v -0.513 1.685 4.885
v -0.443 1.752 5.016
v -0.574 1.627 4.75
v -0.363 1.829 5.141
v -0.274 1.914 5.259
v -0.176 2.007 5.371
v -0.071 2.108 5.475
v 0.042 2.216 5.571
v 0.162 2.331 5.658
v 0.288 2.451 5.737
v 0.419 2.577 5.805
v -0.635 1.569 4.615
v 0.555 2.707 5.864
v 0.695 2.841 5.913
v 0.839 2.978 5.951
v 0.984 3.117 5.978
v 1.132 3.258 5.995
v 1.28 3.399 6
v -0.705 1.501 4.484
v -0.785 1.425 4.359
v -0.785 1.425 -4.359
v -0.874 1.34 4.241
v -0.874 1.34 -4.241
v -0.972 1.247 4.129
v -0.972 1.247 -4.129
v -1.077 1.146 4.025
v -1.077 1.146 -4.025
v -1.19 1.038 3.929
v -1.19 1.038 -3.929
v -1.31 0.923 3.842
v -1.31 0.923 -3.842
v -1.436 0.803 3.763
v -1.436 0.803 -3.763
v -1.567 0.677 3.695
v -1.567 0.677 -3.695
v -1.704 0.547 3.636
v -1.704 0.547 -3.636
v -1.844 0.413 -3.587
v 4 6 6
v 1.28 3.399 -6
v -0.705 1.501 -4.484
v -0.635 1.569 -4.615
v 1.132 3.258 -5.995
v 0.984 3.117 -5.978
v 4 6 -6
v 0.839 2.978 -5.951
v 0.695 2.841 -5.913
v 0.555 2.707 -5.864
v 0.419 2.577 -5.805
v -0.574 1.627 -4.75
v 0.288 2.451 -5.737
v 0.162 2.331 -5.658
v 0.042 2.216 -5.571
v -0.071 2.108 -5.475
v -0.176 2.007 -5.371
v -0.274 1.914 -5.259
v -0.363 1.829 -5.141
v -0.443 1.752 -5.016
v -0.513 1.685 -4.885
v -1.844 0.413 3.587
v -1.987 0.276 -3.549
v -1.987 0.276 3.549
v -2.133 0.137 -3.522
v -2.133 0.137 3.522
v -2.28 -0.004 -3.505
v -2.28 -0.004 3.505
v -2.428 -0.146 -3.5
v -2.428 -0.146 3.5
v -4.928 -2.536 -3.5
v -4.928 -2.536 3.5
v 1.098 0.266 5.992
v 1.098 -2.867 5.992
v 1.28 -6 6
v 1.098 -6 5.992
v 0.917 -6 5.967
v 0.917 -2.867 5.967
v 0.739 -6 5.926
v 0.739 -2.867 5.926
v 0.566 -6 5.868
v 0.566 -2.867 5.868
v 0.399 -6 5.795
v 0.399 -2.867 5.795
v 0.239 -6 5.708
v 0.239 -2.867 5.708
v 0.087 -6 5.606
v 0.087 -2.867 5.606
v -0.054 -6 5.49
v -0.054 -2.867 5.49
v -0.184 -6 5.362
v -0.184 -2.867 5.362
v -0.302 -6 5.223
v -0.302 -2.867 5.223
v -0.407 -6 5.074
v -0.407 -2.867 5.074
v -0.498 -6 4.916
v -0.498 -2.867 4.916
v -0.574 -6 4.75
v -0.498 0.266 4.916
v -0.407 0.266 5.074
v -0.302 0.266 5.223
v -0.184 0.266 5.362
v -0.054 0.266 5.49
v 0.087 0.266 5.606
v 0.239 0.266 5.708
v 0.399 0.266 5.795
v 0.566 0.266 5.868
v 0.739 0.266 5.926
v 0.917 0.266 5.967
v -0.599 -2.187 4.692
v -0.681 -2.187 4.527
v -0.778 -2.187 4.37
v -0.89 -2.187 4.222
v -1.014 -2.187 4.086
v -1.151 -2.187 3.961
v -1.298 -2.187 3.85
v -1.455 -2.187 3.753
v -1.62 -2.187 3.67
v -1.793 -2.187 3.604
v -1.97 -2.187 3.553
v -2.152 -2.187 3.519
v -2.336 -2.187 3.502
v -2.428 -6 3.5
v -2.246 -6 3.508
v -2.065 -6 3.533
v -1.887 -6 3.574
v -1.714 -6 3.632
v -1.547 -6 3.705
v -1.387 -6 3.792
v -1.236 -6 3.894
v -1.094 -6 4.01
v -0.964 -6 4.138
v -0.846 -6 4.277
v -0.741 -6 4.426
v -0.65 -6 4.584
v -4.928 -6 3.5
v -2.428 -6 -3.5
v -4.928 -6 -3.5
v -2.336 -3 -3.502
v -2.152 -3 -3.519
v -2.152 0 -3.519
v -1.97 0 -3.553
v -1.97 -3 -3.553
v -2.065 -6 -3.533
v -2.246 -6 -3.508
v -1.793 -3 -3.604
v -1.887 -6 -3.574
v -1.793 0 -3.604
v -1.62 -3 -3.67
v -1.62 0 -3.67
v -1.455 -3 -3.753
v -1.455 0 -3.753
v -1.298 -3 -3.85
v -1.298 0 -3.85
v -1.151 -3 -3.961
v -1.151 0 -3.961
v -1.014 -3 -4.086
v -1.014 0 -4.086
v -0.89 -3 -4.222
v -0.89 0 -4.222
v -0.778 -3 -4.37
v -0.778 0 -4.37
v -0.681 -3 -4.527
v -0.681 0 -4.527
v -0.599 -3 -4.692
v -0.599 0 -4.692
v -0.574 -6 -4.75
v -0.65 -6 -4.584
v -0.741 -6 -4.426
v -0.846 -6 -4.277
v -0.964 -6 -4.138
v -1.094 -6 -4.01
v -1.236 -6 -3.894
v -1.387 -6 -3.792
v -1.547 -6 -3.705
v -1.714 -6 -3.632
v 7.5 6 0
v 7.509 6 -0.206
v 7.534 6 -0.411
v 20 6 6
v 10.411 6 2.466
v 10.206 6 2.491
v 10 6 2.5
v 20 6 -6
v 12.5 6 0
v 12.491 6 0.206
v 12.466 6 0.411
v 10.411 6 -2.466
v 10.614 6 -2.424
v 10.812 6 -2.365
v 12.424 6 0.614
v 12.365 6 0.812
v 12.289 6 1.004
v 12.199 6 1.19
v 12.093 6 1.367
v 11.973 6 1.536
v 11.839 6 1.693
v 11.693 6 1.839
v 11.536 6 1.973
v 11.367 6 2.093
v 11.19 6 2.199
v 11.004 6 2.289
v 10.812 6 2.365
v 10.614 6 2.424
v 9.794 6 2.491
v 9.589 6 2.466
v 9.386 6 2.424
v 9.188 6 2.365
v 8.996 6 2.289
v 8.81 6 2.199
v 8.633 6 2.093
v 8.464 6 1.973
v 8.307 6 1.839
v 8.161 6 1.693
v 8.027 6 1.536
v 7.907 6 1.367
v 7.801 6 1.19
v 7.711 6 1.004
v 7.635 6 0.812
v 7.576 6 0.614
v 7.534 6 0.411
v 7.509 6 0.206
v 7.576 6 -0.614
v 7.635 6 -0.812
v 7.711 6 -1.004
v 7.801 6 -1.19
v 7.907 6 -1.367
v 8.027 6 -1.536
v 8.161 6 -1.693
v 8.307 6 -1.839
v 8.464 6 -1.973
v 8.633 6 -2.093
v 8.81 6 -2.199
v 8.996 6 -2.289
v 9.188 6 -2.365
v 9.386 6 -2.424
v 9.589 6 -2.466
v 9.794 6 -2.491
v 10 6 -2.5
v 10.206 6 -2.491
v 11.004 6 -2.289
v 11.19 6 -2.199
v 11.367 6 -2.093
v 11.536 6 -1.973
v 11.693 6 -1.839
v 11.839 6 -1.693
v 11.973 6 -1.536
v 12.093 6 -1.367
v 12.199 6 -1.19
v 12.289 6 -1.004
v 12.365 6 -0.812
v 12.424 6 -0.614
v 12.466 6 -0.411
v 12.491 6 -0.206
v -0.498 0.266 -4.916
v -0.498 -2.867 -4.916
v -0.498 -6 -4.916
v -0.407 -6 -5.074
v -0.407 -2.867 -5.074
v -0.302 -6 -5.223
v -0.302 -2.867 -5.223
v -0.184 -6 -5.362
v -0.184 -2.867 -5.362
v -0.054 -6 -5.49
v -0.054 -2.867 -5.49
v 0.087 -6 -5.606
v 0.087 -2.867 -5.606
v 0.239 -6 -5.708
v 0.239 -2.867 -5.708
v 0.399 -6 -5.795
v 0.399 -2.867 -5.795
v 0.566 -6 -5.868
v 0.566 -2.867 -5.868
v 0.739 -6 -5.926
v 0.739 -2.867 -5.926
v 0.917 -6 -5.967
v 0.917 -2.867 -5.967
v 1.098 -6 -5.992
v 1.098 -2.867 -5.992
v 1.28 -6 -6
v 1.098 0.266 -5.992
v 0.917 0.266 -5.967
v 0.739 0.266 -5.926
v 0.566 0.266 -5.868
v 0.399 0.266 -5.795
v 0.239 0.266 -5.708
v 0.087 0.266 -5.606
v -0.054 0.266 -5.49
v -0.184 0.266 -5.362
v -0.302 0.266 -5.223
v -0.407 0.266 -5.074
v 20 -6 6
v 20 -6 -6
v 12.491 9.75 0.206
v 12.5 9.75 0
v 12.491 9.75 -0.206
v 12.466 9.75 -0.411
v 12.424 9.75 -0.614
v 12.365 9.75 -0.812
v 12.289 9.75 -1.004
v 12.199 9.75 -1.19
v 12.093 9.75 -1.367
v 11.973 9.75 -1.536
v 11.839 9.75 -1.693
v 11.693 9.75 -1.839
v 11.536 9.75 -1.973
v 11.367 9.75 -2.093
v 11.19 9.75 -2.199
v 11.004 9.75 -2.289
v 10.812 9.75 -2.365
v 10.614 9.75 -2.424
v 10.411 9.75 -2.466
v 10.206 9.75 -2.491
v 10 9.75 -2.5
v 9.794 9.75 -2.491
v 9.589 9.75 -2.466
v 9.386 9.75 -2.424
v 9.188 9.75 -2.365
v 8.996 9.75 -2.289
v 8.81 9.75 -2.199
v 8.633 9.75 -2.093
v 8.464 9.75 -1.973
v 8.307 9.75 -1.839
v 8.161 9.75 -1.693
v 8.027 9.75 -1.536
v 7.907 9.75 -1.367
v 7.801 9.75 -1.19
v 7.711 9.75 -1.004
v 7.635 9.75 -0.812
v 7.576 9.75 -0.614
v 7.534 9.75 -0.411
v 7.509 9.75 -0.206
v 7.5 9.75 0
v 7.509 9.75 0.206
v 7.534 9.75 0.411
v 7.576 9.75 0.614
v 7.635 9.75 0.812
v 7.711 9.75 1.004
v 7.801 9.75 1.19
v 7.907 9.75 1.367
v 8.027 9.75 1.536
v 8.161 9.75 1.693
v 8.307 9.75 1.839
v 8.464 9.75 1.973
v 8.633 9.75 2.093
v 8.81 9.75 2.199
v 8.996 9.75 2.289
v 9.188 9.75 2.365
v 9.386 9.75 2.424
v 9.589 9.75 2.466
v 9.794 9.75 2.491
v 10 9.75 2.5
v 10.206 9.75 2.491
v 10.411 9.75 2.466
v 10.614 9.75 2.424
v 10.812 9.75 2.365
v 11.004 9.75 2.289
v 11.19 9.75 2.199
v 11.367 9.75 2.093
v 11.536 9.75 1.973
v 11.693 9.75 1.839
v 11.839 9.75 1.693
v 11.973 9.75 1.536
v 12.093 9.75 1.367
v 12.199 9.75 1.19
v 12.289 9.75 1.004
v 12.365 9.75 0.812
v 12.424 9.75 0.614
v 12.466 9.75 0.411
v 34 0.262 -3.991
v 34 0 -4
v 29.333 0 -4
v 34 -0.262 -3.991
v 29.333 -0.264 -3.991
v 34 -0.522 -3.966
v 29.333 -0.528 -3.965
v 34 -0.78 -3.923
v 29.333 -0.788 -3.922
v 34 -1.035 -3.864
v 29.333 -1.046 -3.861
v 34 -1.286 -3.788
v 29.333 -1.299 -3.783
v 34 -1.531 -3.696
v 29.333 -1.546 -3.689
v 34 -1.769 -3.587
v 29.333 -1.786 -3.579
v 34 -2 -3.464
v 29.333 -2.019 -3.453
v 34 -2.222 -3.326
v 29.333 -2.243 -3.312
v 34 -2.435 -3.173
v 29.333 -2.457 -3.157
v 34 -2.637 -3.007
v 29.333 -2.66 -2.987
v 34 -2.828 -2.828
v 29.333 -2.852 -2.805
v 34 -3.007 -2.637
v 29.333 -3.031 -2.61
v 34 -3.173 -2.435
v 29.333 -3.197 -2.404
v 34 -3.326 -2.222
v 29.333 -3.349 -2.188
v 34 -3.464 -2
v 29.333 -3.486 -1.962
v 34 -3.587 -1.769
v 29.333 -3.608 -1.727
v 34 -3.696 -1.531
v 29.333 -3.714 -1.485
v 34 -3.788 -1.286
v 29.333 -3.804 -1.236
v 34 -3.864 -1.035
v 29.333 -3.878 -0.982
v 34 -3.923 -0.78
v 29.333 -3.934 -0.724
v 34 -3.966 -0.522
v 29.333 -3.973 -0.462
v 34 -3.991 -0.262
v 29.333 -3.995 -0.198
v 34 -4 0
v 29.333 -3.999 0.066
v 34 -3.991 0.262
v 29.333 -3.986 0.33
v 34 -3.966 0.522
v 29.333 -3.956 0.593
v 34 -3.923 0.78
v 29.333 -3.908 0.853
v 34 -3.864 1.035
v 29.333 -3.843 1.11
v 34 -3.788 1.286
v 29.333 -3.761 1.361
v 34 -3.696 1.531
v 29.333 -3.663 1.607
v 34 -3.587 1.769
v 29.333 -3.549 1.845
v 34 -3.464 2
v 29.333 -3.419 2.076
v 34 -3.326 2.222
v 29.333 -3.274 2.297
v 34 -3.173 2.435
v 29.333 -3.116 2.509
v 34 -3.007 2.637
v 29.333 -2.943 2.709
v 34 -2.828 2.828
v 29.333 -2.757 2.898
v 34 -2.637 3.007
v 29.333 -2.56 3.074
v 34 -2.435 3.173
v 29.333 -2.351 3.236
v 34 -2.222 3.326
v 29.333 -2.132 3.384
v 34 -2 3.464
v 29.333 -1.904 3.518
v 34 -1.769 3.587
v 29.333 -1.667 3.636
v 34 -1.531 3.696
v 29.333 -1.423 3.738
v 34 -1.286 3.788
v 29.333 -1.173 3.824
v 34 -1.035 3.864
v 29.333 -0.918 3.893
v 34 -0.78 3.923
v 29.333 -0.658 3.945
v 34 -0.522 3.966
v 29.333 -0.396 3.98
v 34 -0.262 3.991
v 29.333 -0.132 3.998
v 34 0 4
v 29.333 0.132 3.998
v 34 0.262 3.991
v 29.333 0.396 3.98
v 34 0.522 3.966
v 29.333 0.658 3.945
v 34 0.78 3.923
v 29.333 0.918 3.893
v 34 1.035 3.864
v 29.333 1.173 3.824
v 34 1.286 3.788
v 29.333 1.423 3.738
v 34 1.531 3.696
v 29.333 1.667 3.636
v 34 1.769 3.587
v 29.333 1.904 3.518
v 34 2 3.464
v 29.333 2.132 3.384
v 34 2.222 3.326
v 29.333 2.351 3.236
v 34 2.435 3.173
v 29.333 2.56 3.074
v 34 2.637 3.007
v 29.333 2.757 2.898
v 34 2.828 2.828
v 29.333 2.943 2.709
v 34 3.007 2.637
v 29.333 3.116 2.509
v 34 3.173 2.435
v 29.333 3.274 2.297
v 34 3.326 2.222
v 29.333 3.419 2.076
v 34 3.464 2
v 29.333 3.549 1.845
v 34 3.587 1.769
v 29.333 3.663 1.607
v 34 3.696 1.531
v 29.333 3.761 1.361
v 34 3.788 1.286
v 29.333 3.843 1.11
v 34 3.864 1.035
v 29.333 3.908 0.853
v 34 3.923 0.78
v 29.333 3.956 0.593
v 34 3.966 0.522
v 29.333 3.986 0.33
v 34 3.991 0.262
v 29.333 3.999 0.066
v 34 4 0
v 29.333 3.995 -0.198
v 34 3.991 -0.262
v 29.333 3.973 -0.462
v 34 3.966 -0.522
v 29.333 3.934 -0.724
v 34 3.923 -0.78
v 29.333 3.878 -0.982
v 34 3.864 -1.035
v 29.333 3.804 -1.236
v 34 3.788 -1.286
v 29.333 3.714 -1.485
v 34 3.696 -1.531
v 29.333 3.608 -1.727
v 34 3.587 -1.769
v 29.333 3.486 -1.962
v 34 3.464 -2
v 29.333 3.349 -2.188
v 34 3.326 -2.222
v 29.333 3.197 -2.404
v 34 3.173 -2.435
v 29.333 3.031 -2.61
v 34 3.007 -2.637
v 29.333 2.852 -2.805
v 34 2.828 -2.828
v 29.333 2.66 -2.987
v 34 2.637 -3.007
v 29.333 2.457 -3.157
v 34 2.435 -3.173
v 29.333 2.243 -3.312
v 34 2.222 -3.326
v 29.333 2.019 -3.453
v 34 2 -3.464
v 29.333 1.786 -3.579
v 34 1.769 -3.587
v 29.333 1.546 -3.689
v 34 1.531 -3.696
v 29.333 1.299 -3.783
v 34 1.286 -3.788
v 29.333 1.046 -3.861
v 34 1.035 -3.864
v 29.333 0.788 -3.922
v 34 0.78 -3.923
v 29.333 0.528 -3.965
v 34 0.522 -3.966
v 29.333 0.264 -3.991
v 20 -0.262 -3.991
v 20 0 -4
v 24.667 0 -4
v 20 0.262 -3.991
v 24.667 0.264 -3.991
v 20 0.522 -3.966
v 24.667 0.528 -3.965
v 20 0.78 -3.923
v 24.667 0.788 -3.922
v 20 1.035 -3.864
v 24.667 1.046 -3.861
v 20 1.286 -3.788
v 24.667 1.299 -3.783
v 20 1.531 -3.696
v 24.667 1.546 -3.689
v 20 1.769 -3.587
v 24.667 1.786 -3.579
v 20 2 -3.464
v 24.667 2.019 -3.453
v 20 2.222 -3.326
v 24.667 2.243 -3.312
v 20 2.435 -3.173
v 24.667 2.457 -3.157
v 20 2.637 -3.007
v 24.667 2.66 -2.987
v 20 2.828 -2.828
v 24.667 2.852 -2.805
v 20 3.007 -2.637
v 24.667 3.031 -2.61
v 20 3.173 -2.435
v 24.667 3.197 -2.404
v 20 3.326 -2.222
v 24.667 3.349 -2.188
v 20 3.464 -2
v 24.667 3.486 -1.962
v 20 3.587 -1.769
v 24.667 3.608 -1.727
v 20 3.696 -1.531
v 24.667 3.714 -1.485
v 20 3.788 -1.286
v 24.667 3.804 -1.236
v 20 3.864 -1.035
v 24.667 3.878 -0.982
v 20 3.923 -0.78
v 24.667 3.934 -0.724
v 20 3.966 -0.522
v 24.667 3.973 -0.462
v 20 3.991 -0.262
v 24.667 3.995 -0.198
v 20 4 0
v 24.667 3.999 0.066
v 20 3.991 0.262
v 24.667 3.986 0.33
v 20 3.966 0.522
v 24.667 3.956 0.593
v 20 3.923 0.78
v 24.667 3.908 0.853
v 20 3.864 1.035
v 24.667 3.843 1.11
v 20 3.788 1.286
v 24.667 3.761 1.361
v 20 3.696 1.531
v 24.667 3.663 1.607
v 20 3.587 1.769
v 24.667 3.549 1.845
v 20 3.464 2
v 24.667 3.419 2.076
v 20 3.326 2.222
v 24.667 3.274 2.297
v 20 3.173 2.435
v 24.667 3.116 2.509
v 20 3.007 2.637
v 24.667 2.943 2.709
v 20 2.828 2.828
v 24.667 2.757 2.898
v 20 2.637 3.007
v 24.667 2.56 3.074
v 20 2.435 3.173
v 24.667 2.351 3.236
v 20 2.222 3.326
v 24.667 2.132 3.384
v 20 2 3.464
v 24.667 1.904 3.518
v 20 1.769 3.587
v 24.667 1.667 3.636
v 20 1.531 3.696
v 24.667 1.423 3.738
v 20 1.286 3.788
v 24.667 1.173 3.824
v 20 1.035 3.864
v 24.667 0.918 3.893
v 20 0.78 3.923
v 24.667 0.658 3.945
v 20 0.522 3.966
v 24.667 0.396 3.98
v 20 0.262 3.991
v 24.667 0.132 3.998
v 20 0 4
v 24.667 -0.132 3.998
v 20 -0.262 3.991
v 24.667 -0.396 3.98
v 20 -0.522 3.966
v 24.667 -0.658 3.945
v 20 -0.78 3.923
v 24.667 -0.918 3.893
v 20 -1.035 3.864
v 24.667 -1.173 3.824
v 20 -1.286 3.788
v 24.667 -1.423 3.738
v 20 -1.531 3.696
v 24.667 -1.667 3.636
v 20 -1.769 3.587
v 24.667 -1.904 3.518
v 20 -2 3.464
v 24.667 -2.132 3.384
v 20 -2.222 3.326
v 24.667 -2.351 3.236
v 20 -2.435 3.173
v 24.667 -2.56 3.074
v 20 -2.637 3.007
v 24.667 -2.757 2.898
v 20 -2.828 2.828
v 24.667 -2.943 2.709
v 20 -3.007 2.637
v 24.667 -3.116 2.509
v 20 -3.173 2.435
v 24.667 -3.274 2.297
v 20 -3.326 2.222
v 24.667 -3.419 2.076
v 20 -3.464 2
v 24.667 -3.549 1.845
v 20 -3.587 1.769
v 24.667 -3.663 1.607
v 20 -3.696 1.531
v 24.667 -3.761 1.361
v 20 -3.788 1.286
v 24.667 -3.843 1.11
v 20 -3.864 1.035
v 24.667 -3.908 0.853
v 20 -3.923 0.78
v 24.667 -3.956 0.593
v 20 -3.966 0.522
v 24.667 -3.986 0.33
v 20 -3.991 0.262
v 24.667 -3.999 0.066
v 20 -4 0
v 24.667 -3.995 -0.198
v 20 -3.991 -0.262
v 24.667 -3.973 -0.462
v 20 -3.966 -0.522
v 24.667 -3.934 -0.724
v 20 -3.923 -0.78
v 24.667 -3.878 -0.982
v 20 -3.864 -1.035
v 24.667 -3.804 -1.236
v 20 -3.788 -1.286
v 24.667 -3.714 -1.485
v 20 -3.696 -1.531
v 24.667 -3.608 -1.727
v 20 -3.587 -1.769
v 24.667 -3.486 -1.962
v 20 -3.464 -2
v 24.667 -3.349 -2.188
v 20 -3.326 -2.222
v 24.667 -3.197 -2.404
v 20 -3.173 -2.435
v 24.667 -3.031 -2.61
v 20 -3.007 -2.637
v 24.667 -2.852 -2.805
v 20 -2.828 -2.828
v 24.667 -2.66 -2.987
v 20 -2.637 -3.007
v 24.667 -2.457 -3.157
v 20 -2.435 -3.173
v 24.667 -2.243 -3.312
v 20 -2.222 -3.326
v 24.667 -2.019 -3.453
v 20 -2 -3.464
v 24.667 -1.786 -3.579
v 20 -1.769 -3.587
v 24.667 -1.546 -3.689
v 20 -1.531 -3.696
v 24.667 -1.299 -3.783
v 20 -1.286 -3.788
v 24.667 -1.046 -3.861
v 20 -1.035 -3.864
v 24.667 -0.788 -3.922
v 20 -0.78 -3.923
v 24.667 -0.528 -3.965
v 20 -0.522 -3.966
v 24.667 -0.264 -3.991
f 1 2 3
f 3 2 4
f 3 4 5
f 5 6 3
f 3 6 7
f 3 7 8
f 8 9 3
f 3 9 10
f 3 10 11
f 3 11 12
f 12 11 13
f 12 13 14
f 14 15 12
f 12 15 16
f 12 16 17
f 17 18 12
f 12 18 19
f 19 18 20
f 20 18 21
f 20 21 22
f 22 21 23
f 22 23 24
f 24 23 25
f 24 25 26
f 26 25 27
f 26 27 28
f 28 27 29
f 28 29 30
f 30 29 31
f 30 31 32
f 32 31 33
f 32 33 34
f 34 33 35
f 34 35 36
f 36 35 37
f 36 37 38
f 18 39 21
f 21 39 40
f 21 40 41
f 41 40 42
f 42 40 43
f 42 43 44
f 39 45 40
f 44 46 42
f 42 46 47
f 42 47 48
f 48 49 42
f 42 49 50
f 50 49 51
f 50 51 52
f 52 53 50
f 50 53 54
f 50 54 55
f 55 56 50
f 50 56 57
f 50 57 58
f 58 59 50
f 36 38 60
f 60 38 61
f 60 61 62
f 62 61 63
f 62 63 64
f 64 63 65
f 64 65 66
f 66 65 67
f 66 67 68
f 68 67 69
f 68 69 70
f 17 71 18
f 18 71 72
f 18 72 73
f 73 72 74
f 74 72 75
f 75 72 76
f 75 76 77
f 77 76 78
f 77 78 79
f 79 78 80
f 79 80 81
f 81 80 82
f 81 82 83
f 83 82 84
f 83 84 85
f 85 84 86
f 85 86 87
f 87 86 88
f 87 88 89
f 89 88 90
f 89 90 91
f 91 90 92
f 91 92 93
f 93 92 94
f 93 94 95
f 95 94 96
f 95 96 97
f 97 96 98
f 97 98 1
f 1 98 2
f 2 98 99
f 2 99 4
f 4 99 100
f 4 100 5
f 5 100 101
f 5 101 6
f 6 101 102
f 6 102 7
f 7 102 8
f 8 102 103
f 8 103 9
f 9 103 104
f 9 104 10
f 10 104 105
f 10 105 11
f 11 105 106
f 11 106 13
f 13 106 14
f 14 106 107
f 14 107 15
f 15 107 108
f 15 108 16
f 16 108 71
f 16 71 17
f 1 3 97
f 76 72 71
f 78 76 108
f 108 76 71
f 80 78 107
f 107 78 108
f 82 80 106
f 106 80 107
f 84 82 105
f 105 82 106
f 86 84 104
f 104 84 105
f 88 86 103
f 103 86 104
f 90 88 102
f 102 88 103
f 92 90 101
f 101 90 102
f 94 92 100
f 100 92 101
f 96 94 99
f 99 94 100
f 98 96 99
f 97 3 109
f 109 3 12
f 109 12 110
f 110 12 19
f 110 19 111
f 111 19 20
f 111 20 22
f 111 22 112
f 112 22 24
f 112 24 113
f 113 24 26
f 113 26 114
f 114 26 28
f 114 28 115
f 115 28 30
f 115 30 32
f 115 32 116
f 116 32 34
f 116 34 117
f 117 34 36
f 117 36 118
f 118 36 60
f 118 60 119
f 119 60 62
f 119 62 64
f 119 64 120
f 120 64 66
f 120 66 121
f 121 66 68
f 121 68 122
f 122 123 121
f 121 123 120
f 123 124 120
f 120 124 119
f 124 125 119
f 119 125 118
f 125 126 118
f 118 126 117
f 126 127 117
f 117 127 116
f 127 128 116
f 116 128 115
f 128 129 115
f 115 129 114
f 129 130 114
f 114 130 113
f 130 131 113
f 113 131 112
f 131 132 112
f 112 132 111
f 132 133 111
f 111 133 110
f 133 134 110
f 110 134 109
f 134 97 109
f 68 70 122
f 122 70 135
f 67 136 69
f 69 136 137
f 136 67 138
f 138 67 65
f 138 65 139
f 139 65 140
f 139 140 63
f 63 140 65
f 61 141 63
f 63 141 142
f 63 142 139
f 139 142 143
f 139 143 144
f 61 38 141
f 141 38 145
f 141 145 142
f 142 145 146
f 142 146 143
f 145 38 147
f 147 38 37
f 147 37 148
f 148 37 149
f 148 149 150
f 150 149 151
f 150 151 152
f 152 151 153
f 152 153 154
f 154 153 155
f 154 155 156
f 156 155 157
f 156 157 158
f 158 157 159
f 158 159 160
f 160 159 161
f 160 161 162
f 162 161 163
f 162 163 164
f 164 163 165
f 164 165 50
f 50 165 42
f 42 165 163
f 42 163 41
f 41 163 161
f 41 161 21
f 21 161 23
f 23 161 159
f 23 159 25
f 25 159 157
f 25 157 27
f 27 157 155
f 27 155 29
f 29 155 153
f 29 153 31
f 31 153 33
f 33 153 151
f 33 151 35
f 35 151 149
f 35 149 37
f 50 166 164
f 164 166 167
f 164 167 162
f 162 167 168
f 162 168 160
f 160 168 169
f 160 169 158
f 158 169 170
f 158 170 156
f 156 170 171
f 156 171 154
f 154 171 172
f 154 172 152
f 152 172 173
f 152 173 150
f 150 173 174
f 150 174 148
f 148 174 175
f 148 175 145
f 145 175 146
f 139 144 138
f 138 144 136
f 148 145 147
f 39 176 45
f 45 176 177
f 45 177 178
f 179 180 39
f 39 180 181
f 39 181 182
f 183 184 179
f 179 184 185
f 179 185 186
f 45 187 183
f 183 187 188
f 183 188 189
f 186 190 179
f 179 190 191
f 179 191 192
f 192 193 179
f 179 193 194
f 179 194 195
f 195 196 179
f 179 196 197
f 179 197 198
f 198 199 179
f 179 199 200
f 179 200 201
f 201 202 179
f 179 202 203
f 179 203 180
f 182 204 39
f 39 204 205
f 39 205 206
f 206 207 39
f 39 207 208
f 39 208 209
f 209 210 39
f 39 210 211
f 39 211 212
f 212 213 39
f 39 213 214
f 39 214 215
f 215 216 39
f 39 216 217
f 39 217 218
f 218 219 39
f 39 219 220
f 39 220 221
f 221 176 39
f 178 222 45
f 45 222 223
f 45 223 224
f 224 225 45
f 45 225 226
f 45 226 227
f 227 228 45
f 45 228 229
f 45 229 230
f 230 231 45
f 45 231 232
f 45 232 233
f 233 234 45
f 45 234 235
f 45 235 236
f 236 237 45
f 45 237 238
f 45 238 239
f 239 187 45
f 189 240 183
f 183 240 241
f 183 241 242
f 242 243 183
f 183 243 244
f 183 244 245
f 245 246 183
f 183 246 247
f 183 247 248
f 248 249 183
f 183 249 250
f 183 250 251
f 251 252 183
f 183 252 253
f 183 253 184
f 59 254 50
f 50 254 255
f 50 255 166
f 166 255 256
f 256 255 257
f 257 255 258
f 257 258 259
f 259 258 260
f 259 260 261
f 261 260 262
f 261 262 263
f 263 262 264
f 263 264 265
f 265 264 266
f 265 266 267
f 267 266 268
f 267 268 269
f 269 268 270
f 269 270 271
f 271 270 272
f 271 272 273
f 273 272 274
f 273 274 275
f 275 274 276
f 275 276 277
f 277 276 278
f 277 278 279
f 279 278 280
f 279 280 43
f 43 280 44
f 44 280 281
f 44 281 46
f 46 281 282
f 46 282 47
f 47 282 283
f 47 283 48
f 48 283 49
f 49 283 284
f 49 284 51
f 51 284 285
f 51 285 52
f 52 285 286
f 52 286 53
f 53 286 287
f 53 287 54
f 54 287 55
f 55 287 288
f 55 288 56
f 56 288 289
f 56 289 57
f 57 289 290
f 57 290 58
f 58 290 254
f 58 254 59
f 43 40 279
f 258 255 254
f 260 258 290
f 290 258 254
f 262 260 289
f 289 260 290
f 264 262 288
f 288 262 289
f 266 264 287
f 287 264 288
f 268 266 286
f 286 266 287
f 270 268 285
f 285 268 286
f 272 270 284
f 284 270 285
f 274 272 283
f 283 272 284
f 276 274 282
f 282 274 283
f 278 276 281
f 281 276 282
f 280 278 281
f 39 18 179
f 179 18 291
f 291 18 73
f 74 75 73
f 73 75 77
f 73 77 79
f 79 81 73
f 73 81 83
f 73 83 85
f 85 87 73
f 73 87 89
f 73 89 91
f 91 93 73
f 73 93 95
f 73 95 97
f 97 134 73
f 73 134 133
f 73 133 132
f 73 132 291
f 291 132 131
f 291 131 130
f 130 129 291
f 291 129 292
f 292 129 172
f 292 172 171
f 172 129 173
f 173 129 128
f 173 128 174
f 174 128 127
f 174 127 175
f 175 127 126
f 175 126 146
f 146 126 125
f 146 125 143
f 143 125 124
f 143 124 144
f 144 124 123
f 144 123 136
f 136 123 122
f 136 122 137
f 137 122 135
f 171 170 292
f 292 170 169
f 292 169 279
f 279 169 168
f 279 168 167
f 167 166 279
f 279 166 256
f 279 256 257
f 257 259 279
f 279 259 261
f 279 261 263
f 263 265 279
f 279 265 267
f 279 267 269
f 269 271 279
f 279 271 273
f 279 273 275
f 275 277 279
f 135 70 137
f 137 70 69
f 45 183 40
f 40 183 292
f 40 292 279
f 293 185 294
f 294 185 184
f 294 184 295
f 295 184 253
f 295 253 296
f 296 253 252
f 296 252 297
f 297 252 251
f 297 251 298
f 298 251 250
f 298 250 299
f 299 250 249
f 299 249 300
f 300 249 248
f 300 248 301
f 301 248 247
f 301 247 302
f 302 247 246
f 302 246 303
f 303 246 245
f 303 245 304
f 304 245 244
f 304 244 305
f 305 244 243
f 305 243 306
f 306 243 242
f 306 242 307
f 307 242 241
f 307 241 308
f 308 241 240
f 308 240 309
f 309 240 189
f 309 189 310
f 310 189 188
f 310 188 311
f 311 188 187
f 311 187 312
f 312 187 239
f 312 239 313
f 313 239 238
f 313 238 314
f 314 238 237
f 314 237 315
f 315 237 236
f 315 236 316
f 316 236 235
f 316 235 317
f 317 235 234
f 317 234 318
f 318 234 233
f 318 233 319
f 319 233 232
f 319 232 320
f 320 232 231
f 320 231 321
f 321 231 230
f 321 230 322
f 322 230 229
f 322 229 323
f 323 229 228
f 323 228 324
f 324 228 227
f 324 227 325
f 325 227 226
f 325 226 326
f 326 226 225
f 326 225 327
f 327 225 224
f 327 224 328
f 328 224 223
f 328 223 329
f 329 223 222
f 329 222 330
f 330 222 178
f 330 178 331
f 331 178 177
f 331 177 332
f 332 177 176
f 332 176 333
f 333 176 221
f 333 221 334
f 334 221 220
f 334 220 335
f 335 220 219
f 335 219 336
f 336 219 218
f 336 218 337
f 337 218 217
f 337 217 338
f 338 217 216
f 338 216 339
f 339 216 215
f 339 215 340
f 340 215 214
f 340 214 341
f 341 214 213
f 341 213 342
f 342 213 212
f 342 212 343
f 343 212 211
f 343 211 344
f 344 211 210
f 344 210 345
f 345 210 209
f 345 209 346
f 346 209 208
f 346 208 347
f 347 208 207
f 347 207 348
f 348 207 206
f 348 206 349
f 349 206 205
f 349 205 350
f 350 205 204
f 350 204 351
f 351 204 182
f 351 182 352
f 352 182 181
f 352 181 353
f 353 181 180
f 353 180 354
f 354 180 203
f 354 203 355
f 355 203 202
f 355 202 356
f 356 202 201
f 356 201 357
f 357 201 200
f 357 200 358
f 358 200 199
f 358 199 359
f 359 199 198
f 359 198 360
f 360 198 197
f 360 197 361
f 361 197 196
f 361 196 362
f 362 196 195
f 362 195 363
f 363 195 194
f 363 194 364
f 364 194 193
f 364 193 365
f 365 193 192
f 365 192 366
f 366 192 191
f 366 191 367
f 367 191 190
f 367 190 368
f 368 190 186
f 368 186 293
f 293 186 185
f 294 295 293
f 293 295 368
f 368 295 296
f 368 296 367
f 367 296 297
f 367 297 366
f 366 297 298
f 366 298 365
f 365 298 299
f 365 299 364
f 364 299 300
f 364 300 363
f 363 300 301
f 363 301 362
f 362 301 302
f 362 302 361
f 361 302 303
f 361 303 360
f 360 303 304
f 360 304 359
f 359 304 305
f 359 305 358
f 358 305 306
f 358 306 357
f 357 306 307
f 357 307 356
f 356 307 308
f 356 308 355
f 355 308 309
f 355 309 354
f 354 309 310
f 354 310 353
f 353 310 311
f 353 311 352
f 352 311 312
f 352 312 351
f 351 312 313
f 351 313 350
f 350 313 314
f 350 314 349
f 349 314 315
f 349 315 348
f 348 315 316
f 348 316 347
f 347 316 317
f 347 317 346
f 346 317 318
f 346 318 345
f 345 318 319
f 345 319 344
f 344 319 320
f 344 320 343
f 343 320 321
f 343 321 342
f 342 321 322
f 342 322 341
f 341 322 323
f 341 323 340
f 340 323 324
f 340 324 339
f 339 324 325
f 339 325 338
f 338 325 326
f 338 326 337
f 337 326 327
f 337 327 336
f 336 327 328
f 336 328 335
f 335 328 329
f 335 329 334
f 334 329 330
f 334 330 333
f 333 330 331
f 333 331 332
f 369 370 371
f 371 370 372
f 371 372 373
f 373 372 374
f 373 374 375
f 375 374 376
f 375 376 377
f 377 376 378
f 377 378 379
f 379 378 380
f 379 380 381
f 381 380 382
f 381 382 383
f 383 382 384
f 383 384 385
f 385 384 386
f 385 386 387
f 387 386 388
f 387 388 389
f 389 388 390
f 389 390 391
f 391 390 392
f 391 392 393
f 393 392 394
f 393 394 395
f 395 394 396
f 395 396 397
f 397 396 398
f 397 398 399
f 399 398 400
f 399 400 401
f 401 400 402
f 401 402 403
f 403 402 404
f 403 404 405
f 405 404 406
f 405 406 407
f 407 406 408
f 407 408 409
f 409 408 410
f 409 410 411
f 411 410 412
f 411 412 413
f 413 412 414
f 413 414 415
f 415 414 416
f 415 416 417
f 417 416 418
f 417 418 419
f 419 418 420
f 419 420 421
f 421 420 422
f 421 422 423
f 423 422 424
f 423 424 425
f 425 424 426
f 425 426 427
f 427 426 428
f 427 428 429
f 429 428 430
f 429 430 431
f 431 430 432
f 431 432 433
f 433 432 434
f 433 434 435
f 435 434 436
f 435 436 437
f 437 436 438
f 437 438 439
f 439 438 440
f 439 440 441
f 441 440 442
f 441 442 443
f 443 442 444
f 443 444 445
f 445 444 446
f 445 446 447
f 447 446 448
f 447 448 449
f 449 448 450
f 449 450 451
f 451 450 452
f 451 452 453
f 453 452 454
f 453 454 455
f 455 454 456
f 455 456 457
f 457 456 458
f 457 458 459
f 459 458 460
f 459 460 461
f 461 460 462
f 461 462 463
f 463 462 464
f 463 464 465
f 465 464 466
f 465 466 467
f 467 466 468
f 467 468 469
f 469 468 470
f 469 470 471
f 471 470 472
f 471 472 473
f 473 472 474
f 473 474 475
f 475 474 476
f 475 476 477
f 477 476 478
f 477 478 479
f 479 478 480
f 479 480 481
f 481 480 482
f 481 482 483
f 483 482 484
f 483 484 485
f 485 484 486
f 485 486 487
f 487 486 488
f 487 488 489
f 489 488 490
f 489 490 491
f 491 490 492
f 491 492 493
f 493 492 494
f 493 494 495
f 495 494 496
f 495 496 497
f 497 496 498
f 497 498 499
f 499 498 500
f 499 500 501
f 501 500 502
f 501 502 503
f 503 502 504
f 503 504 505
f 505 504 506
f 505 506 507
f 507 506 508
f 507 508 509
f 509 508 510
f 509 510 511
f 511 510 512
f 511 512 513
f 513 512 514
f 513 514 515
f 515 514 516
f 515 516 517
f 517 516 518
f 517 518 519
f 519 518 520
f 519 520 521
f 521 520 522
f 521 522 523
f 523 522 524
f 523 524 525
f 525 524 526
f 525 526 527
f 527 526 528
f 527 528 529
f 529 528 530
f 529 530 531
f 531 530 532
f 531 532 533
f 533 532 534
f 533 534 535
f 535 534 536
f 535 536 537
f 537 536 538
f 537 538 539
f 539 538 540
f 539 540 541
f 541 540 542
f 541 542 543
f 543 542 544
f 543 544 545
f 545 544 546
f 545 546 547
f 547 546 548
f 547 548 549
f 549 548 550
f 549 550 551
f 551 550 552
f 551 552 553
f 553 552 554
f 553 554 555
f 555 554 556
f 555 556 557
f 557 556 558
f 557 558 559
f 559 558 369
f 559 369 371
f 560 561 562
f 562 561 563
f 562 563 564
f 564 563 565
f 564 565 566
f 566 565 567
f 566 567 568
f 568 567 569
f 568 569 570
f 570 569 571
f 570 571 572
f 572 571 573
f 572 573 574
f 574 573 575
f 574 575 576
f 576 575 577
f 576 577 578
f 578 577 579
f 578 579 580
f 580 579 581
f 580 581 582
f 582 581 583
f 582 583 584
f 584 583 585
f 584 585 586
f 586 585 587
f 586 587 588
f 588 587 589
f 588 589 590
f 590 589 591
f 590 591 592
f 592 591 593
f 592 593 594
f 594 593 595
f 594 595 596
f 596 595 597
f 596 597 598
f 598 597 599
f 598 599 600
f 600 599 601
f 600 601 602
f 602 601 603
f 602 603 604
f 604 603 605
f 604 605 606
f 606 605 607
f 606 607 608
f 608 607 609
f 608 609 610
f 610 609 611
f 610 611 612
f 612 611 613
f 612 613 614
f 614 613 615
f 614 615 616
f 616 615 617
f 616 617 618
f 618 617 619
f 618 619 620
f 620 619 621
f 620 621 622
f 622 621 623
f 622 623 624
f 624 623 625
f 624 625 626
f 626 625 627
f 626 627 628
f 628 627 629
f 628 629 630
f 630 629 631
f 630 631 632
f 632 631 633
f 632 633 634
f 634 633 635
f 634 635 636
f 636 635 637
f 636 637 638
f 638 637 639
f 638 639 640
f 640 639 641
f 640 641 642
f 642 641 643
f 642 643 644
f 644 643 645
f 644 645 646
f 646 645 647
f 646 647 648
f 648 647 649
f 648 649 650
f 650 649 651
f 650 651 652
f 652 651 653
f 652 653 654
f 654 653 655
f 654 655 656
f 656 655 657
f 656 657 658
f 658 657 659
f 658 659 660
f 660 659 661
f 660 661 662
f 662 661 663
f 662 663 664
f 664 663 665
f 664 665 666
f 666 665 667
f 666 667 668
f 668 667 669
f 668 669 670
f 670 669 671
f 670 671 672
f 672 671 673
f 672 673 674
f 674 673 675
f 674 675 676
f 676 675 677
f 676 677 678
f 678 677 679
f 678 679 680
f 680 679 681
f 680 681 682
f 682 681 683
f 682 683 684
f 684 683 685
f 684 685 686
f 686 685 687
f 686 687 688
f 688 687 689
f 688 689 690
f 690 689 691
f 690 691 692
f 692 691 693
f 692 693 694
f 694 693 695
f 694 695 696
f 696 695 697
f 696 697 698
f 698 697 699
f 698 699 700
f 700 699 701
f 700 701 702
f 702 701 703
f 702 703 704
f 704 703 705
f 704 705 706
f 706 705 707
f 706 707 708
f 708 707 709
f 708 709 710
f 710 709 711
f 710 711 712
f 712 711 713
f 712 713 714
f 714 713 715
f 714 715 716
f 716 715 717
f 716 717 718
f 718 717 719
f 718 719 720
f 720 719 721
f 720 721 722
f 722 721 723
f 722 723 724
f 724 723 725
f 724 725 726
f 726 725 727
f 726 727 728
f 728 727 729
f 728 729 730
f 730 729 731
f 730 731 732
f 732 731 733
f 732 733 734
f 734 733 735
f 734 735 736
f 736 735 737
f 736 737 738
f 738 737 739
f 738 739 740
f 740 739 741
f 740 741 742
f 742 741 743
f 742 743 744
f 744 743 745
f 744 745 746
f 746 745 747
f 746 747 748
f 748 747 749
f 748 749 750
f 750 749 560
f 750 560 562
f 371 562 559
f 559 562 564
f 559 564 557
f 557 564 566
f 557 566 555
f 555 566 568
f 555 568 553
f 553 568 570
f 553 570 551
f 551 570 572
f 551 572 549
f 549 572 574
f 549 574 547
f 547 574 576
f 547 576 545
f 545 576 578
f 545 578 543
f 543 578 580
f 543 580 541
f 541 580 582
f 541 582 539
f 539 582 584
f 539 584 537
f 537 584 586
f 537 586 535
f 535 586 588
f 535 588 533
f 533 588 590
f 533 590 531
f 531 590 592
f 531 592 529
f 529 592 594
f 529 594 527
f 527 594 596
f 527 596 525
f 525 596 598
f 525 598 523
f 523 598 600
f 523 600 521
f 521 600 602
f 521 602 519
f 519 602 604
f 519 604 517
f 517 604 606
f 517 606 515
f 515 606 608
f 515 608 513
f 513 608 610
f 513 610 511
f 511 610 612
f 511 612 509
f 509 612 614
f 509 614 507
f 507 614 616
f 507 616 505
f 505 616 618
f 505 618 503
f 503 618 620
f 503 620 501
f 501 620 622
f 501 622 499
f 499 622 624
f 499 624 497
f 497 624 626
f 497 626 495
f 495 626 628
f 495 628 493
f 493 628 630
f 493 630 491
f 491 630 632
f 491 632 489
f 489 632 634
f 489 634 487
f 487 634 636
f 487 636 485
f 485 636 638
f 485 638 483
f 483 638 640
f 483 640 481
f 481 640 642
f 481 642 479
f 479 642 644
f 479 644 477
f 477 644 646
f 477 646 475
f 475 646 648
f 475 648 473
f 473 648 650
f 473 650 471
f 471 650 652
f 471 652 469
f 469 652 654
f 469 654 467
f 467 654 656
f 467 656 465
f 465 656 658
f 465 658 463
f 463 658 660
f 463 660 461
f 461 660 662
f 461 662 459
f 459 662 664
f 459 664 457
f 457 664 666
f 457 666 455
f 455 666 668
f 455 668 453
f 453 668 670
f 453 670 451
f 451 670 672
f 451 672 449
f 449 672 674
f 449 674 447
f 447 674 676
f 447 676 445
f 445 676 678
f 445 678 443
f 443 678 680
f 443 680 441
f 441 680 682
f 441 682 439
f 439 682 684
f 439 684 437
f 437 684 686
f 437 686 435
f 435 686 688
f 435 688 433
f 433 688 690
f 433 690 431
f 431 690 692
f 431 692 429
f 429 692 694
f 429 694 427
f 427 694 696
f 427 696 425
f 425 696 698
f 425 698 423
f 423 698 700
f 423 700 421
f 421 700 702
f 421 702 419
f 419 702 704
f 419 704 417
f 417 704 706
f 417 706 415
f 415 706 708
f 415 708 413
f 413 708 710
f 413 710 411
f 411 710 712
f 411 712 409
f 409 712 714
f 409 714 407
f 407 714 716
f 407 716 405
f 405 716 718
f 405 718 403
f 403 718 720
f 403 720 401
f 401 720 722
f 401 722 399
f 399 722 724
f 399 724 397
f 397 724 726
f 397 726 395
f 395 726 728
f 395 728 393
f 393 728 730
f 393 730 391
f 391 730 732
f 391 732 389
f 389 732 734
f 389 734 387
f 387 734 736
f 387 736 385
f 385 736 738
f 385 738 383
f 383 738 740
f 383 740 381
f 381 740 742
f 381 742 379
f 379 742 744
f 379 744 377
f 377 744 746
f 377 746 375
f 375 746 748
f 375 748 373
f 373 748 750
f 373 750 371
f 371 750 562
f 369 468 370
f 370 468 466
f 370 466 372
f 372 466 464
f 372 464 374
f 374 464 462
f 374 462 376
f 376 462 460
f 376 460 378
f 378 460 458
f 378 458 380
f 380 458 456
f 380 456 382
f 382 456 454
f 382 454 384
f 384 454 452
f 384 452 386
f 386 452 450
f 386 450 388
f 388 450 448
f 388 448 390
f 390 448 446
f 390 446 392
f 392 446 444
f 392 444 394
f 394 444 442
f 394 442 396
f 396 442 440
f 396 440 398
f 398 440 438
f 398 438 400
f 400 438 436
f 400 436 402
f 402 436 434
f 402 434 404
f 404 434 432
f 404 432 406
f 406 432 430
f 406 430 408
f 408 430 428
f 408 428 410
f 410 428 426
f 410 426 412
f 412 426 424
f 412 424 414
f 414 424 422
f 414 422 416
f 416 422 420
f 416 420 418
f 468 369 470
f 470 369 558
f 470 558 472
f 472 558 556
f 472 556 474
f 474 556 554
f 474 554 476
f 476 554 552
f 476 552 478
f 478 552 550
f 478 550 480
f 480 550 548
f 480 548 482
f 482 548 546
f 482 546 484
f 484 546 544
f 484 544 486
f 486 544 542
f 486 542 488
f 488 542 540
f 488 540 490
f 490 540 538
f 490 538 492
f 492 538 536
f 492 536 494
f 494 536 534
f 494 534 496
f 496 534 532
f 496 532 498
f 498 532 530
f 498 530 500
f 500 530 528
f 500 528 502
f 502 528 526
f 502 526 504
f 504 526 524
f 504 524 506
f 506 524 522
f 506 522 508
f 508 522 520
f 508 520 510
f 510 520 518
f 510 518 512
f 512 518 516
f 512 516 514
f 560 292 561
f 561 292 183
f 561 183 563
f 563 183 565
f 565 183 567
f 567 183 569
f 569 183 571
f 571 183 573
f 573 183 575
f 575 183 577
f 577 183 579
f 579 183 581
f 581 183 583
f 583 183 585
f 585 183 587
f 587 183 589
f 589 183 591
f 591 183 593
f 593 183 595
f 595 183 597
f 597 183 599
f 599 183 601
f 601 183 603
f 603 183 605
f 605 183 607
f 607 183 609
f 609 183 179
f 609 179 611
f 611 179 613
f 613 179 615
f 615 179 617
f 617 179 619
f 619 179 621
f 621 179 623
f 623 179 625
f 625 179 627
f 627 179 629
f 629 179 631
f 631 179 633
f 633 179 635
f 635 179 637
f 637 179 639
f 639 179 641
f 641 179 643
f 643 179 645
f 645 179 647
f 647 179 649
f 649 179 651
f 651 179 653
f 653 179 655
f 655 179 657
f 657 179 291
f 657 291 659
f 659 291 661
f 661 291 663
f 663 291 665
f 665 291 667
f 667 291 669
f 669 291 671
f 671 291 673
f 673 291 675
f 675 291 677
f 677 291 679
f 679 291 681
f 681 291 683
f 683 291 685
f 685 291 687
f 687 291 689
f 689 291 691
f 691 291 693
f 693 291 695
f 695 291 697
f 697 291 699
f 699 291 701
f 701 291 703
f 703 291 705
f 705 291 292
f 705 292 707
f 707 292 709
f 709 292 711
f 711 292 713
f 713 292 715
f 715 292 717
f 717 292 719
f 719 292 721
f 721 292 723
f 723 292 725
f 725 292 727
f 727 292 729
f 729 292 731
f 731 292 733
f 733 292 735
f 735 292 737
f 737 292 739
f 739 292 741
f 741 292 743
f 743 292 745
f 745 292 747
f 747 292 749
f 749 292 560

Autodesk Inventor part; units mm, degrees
ref_plane "YZ Plane" through (0, 0, 0) normal (1, 0, 0) x (0, 1, 0)
ref_plane "XZ Plane" through (0, 0, 0) normal (0, 1, 0) x (-1, 0, 0)
ref_plane "XY Plane" through (0, 0, 0) normal (0, 0, 1) x (1, 0, 0)
sketch "Sketch1" plane through (0, 0, 0) normal (1, 0, 0) x (0, 1, 0)
  line L0 (-6, 6) -> (6, 6)
  line L1 (6, 6) -> (6, -6)
  line L2 (6, -6) -> (-6, -6)
  line L3 (-6, -6) -> (-6, 6)
  line L4 (-6, 6) -> (6, -6) construction
  line L5 (6, 6) -> (-6, -6) construction
  point P0 (0, 0)
  dimension "d0" = 12
  dimension "d1" = 12
extrude "Extrusion1" add sketch "Sketch1" along normal blind 20
sketch "Sketch2" plane through (0, -6, 6) normal (0, 0, 1) x (1, 0, 0)
  line L0 (0, 0) -> (0, 12) projected
  line L1 (0, 12) -> (-6.9282, 0)
  line L2 (0, 12) -> (15.674, 12) construction
  line L3 (0, 0) -> (-6.9282, 0)
  line L4 (0, 0) -> (20, 0) projected
  line L5 (0, 0) -> (0, 12)
  point P0 (0, 6)
  dimension "d4" = 120
extrude "Extrusion2" add sketch "Sketch2" against normal blind 12
sketch "Sketch3" plane through (20, 0, 0) normal (1, 0, 0) x (0, 0, -1)
  circle A0 centre (0, 0) radius 4
  dimension "d7" = 8
extrude "Extrusion3" add sketch "Sketch3" along normal blind 14
sketch "Sketch4" plane through (20, 6, 6) normal (0, 1, 0) x (1, 0, 0)
  circle A0 centre (-10, 6) radius 2.5
  line L0 (-20, 0) -> (-20, 12) projected
  line L1 (-20, 0) -> (0, 0) projected
  point P0 (-20, 6)
  dimension "d10" = 5
  dimension "d11" = 10
  dimension "d12" = 6
extrude "Extrusion4" add sketch "Sketch4" along normal blind 3.75
sketch "Sketch5" plane through (20, -6, 6) normal (0, 0, 1) x (1, 0, 0)
  line L0 (0, 0) -> (-26.9282, 0) projected
  line L1 (-26.9282, 0) -> (-24.9282, 0)
  line L2 (-24.9282, 0) -> (-24.9282, 3.4641)
  line L3 (-26.9282, 0) -> (-20, 12) projected
  line L4 (-26.9282, 0) -> (-24.9282, 3.4641)
  point P0 (-20, 6)
  dimension "d15" = 2
extrude "Extrusion5" cut sketch "Sketch5" against normal blind 12
sketch "Sketch6" plane through (-4.9282, -6, 6) normal (-1, 0, 0) x (0, 0, 1)
  line L0 (0, 0) -> (-12, 0) projected
  line L1 (0, 0) -> (-2.5, 0)
  line L2 (-2.5, 0) -> (-2.5, 12)
  line L3 (-12, 12) -> (0, 12) projected
  line L4 (-2.5, 12) -> (0, 12)
  line L5 (0, 12) -> (0, 0)
  line L6 (-12, 0) -> (-12, 3.4641) projected
  line L7 (-12, 0) -> (-9.5, 0)
  line L8 (-9.5, 0) -> (-9.5, 12)
  line L9 (-9.5, 12) -> (-12, 12)
  line L10 (-12, 3.4641) -> (-12, 12) projected
  line L11 (-12, 12) -> (-12, 0)
  point P0 (-6, 6)
  dimension "d18" = 2.5
  dimension "d19" = 2.5
extrude "Extrusion6" cut sketch "Sketch6" against normal blind 4.5 contours L0 L2 L3 L5 | L0 L6 L10 L3 L8
fillet "Fillet1" radius 2 4 edges at (-0.4282, -0.3708, 3.5) (-0.4282, -0.3708, -3.5) (-0.4282, -0.3708, -6) (-0.4282, -0.3708, 6)
sketch "Sketch7" plane through (20, -6, 6) normal (0, 0, 1) x (1, 0, 0)
  line L0 (-20, 12) -> (-18.7201, 12) projected
  line L1 (-20, 12) -> (-16, 12)
  line L2 (-20.5742, 11.0055) -> (-22.4282, 7.7942) projected
  line L3 (-16, 12) -> (-22.4282, 7.7942)
  line L4 (-22.4282, 7.7942) -> (-20, 12)
  point P0 (-20, 6)
  dimension "d23" = 4
extrude "Extrusion7" cut sketch "Sketch7" against normal blind 20
sketch "Sketch8" plane through (20, -6, 6) normal (0, 0, 1) x (1, 0, 0)
  line L0 (-16, 12) -> (-18.7201, 10.2203) projected
  line L1 (-24.9282, 3.4641) -> (-22.4282, 7.7942) projected
  line L2 (-16, 12) -> (-24.9282, 3.4641)
  line L3 (-24.9282, 3.4641) -> (-24.9282, 12)
  line L4 (-16, 12) -> (0, 12) projected
  line L5 (-24.9282, 12) -> (-16, 12)
  point P0 (-20, 6)
extrude "Extrusion8" cut sketch "Sketch8" against normal blind 20
properties part number "18 pin schieter"
